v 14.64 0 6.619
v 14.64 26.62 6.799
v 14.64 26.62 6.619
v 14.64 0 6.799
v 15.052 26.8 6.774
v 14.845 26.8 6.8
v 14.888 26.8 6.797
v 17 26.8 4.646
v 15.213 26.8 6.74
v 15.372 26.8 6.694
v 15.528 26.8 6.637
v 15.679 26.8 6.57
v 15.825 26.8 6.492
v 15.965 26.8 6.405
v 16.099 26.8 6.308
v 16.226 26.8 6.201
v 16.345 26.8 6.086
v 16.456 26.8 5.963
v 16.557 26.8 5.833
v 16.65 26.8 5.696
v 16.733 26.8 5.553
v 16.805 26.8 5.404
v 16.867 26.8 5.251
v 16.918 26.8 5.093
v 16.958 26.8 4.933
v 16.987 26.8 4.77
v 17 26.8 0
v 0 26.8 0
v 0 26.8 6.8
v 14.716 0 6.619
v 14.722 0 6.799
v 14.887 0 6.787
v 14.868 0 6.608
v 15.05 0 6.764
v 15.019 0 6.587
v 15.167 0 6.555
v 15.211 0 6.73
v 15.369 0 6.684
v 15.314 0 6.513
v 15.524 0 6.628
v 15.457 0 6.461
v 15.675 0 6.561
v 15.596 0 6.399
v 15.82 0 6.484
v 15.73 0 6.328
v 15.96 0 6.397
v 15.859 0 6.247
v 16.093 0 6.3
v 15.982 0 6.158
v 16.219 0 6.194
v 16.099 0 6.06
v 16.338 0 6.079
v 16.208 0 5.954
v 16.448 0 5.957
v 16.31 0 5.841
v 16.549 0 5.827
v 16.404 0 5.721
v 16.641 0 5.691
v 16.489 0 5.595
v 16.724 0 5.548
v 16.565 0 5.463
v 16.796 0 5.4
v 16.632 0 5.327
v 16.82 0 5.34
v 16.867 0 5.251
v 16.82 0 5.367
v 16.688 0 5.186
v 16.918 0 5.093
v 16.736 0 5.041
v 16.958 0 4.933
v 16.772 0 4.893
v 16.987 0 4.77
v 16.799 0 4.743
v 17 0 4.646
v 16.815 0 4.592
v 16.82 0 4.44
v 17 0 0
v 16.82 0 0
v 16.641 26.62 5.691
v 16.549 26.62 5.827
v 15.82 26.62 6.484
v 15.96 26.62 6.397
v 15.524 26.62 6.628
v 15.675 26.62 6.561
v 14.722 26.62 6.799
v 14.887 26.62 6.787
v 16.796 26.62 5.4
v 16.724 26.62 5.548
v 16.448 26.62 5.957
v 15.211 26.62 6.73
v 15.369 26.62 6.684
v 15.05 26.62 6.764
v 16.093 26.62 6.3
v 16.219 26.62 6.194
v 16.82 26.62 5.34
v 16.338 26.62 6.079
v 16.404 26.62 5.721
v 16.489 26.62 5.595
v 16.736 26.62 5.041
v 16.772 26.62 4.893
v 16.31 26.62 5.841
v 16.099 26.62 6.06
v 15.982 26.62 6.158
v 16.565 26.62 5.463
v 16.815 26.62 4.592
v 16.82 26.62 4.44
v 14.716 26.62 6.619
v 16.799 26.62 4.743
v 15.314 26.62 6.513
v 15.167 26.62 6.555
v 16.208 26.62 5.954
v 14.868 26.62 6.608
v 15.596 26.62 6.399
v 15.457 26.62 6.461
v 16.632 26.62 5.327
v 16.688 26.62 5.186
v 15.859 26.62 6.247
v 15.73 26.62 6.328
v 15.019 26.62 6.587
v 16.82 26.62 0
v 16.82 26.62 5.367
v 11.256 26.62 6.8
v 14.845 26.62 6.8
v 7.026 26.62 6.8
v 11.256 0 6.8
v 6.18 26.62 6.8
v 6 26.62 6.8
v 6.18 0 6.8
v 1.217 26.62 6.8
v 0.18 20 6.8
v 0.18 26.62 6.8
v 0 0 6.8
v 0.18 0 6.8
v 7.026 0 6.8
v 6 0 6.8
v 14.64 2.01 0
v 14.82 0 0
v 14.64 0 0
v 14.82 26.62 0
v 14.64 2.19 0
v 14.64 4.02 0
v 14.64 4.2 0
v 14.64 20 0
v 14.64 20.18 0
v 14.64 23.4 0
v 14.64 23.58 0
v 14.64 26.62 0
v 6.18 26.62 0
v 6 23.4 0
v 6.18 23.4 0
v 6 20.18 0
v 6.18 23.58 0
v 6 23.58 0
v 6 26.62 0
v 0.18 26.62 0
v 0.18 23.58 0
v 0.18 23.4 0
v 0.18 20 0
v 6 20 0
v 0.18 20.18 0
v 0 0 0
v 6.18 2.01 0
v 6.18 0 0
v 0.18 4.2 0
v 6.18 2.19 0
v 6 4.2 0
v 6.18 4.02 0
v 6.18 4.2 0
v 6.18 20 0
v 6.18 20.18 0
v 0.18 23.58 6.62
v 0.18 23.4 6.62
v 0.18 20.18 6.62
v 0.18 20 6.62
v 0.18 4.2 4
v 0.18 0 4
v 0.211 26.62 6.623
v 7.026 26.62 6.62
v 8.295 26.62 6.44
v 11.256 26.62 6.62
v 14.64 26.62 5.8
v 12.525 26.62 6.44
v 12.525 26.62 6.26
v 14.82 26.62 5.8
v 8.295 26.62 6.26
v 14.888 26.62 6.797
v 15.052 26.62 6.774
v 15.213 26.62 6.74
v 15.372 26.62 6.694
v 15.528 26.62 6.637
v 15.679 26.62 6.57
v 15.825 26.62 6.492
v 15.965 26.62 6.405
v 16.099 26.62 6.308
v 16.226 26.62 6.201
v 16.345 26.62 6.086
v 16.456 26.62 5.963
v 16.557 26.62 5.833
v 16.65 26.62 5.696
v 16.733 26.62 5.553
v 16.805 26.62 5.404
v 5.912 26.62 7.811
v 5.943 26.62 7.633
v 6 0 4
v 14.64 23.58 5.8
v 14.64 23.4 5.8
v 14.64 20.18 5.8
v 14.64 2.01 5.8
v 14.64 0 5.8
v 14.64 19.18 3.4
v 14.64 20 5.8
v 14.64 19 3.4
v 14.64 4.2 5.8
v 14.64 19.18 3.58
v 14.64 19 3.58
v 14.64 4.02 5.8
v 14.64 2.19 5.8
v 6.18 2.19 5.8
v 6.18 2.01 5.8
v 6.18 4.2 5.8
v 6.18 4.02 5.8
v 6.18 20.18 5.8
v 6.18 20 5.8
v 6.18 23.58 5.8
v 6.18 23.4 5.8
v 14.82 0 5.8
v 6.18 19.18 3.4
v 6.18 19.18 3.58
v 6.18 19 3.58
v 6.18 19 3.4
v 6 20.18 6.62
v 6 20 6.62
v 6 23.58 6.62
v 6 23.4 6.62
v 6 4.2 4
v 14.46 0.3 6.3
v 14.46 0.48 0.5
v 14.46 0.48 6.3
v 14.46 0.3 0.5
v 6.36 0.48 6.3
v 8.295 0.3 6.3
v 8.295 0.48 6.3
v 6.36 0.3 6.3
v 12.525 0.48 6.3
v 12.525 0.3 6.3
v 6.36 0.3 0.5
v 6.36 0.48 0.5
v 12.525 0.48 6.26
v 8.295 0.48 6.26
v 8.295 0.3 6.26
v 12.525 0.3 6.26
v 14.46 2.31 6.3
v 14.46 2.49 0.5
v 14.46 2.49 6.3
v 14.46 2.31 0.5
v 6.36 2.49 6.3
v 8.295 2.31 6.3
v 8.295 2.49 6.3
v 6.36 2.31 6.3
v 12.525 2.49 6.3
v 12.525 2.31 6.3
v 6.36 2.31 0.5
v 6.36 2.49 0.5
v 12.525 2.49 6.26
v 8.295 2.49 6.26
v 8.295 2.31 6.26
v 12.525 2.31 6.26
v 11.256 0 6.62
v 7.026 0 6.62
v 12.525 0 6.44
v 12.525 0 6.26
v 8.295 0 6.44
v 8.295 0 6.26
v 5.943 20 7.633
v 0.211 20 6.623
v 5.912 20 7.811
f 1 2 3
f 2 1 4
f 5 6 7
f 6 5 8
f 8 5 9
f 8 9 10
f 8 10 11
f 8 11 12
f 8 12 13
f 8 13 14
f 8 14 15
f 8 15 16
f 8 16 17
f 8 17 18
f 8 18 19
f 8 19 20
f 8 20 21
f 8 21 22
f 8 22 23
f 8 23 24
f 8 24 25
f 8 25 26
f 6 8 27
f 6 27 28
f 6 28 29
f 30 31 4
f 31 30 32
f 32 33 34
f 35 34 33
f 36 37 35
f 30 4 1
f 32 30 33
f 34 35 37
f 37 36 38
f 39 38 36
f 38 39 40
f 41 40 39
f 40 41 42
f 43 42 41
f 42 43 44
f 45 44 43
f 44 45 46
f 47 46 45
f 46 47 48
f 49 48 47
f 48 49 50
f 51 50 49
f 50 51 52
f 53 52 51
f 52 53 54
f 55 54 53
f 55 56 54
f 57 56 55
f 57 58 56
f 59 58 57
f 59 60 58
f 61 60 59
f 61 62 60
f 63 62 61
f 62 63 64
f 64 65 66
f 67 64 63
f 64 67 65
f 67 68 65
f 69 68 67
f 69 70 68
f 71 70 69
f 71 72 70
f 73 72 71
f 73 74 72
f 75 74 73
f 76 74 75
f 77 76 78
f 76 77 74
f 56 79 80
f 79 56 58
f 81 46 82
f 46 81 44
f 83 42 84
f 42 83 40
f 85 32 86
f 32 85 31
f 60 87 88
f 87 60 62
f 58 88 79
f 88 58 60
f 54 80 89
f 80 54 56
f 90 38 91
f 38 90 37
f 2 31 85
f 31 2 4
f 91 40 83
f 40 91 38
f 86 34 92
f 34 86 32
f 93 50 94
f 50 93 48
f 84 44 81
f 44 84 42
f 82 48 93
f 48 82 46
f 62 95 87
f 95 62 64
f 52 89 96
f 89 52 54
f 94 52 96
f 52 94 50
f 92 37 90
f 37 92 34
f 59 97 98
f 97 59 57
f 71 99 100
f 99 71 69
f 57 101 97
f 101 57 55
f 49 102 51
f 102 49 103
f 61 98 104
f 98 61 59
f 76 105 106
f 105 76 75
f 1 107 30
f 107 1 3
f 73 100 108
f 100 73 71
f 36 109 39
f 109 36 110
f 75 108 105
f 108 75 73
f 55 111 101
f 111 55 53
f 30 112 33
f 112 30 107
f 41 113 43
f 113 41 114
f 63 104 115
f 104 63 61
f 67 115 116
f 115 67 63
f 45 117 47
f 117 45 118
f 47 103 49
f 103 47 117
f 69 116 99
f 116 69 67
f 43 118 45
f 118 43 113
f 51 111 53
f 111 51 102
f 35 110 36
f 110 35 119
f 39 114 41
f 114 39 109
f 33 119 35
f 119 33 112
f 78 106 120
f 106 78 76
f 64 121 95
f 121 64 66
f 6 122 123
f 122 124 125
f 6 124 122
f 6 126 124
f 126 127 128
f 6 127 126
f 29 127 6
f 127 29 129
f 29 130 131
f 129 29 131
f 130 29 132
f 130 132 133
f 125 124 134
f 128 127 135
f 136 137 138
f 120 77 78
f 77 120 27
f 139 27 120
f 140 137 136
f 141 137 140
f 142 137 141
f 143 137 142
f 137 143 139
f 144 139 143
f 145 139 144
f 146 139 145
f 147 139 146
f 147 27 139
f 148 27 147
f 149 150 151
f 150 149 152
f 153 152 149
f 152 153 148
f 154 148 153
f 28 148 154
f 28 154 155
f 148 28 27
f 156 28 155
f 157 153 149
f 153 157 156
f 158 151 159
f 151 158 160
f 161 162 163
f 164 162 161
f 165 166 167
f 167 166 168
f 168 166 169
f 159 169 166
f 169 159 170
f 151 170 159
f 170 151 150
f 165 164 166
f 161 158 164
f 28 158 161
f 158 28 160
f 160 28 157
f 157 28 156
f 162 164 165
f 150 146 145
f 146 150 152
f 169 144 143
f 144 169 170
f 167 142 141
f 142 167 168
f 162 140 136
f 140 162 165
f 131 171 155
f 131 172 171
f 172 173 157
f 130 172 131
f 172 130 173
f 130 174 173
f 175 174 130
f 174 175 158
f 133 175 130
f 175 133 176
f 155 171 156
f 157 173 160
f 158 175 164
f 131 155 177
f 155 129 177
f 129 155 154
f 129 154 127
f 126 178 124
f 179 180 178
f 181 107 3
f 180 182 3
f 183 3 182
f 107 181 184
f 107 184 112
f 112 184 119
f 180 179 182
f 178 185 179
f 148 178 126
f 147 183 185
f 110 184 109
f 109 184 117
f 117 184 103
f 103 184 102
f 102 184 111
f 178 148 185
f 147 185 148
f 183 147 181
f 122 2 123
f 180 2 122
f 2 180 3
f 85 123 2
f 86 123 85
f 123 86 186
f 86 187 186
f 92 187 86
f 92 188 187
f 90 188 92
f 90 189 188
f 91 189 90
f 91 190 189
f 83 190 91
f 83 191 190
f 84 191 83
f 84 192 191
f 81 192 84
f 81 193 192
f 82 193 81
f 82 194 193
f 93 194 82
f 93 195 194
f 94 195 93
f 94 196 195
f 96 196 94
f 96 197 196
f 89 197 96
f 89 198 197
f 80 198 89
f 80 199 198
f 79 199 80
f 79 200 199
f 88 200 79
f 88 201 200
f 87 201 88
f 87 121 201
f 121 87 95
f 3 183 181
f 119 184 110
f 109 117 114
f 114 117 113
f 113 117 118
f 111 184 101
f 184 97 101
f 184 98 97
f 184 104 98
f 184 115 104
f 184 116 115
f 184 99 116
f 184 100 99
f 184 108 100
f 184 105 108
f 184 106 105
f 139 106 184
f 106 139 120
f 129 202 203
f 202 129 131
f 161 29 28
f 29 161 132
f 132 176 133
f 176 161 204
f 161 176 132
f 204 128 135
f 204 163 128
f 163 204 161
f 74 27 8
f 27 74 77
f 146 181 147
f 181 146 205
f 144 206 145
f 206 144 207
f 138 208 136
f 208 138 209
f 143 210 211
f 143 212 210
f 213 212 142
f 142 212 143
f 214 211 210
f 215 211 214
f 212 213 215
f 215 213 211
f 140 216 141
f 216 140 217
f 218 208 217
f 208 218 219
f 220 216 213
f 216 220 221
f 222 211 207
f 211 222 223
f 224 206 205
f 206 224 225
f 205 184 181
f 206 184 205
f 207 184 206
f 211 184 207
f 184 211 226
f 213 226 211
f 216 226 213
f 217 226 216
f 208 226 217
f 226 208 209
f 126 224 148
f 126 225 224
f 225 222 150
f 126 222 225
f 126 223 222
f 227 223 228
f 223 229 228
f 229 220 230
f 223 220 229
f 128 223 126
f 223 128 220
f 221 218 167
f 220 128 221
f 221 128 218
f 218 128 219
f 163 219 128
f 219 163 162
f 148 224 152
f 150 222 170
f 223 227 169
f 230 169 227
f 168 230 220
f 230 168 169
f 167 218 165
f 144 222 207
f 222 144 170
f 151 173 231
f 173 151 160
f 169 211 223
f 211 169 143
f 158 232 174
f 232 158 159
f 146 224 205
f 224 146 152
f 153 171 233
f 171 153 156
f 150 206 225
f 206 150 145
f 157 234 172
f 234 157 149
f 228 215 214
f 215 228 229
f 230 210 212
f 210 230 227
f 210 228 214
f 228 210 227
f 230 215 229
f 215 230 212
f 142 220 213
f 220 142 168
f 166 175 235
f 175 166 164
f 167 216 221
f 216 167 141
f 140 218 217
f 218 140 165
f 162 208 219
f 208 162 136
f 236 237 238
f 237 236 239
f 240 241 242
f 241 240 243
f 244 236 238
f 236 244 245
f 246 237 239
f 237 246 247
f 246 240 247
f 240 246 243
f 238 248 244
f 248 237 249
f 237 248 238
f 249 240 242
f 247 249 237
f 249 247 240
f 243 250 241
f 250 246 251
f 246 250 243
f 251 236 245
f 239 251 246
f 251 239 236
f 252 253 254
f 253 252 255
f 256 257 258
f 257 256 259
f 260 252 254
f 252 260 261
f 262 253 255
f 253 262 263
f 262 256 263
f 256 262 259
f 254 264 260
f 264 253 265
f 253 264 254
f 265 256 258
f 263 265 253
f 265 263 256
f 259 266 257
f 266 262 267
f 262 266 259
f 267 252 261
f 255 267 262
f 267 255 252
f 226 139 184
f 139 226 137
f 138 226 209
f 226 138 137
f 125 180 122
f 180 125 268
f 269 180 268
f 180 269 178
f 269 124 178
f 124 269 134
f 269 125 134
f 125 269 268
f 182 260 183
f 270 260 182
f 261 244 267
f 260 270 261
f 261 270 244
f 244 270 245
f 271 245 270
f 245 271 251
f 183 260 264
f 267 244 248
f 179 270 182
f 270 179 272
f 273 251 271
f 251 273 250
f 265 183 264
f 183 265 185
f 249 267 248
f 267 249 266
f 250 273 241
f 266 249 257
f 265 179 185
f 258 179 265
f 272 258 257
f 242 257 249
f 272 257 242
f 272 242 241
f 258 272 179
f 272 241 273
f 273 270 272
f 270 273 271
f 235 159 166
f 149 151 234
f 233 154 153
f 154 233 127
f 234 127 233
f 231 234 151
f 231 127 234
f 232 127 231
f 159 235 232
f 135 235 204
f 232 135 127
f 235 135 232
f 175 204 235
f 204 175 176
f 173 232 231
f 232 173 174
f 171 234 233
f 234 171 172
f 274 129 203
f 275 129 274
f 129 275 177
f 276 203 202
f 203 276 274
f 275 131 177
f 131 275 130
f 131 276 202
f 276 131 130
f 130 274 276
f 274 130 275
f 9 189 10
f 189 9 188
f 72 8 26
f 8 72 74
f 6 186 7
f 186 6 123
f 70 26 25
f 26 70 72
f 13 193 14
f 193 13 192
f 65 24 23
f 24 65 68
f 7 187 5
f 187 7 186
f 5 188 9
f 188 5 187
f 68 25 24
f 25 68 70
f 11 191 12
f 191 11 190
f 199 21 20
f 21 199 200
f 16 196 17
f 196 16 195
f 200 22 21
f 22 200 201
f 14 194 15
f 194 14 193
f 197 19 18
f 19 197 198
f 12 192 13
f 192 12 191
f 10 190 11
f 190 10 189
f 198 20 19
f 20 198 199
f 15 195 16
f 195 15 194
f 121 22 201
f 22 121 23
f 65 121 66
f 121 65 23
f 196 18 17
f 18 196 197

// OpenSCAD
$fn = 90;
module hall_cabinet() {
    PLANK_THICKNESS = 0.18;
    CLOSET_HEIGHT = 26.8;
    CLOSED_DEPTH = 6.8;
    VENT_DEPTH = 8.;
    KITCHEN_WALL_LENGTH = 9.;
    CLOSET_WIDTH = VENT_DEPTH + KITCHEN_WALL_LENGTH;
    BROOM_COMPARTMENT_WIDTH = 2.;
    SEAT_WIDTH = 6.; // our has 10.
    SEAT_DEPTH = 4.;
    SEAT_TOP = 4.2;
    SEAT_END = SEAT_WIDTH + PLANK_THICKNESS;
    SLIDING_DOORS_DEPTH = 1.;
    MIDDLE_PLANK_DEPTH = CLOSED_DEPTH - SLIDING_DOORS_DEPTH;
    MIDDLE_VERTICAL_PLANK_HEIGHT = CLOSET_HEIGHT - PLANK_THICKNESS;
    MIDDLE_HORIZONTAL_PLANK_Y = 20.0;
    TOP_HORIZONTAL_DIVIDER_PLANK_Y = MIDDLE_HORIZONTAL_PLANK_Y + 0.5 * (CLOSET_HEIGHT - MIDDLE_HORIZONTAL_PLANK_Y);
    HANGER_ROD_Y = 19.0;
    SHOES_DRAWER_TOP_Y = SEAT_TOP - PLANK_THICKNESS;
    SHOES_DRAWER_MIDDLE_Y = 0.5 * SHOES_DRAWER_TOP_Y;
    HANGER_SPACE_W = CLOSET_WIDTH - 3. * PLANK_THICKNESS - BROOM_COMPARTMENT_WIDTH - SEAT_WIDTH;
    BROOM_X = CLOSET_WIDTH - 2. * PLANK_THICKNESS - BROOM_COMPARTMENT_WIDTH;
    MAX_DRAWER_Y = 11.;
    eps = 0.01;
    rounding_radius = BROOM_COMPARTMENT_WIDTH + 2 * PLANK_THICKNESS;
    SHOES_DROWER_DEPTH_DISPLACEMENT = 0.5;

    difference() {
        union() {
            // BOX
            // top plank
            translate([PLANK_THICKNESS, MIDDLE_VERTICAL_PLANK_HEIGHT, 0.]) {
                cube([CLOSET_WIDTH - 2. * PLANK_THICKNESS, PLANK_THICKNESS, CLOSED_DEPTH]);
            }
            // left side plank
            translate([0., 0., 0.]) {
                cube([PLANK_THICKNESS, CLOSET_HEIGHT, CLOSED_DEPTH]);
            }
            // right side plank
            translate([CLOSET_WIDTH - PLANK_THICKNESS, 0., 0.]) {
                cube([PLANK_THICKNESS, CLOSET_HEIGHT, CLOSED_DEPTH]);
            }
            // HANGER SPACE
            // over the rod hanger plank
            translate([SEAT_END, MIDDLE_HORIZONTAL_PLANK_Y, 0.]) {
                cube([HANGER_SPACE_W, PLANK_THICKNESS, MIDDLE_PLANK_DEPTH]);
            }
            // top storage divider horizontal hanger plank
            translate([SEAT_END, TOP_HORIZONTAL_DIVIDER_PLANK_Y, 0.]) {
                cube([HANGER_SPACE_W, PLANK_THICKNESS, MIDDLE_PLANK_DEPTH]);
            }
            // the rod
            translate([SEAT_END, HANGER_ROD_Y, 0.5 * CLOSED_DEPTH]) {
                cube([HANGER_SPACE_W, PLANK_THICKNESS, PLANK_THICKNESS]);
            }
            // over the boot draweds under the couat space
            translate([SEAT_END, SHOES_DRAWER_TOP_Y, 0.]) {
                cube([HANGER_SPACE_W, PLANK_THICKNESS, MIDDLE_PLANK_DEPTH]);
            }
            // split the boots with horizontal plank
            translate([SEAT_END, SHOES_DRAWER_MIDDLE_Y, 0.]) {
                cube([HANGER_SPACE_W, PLANK_THICKNESS, MIDDLE_PLANK_DEPTH]);
            }
            // shoes drawer bottom
            translate([SEAT_END + PLANK_THICKNESS, 0.3, SHOES_DROWER_DEPTH_DISPLACEMENT]) {
                cube([HANGER_SPACE_W - 2 * PLANK_THICKNESS, PLANK_THICKNESS, MIDDLE_PLANK_DEPTH]);
            }
            // shoes drawer top
            translate([SEAT_END + PLANK_THICKNESS, SHOES_DRAWER_MIDDLE_Y + 0.3, SHOES_DROWER_DEPTH_DISPLACEMENT]) {
                cube([HANGER_SPACE_W - 2 * PLANK_THICKNESS, PLANK_THICKNESS, MIDDLE_PLANK_DEPTH]);
            }
            // broom compartment and hanger space divider
            translate([BROOM_X, 0., 0.]) {
                cube([PLANK_THICKNESS, CLOSET_HEIGHT, MIDDLE_PLANK_DEPTH]);
            }
            // HANGER SPACE SLIDING DOORS
            translate([SEAT_END + 0.1 * HANGER_SPACE_W, 0., CLOSED_DEPTH - PLANK_THICKNESS]) {
                cube([0.5 * HANGER_SPACE_W, CLOSET_HEIGHT, PLANK_THICKNESS]);
            }
            translate([SEAT_END + 0.25 * HANGER_SPACE_W, 0., CLOSED_DEPTH - 3 * PLANK_THICKNESS]) {
                cube([0.5 * HANGER_SPACE_W, CLOSET_HEIGHT, PLANK_THICKNESS]);
            }
            // SEAT
            // seat and hanging space divider
            translate([SEAT_END - PLANK_THICKNESS, 0., 0.]) {
                cube([PLANK_THICKNESS, MIDDLE_VERTICAL_PLANK_HEIGHT, CLOSED_DEPTH]);
            }
            // the seat
            translate([PLANK_THICKNESS, 0., 0.]) {
                cube([SEAT_WIDTH, SEAT_TOP, SEAT_DEPTH]);
            }
            seat_shelf_depth = CLOSED_DEPTH - PLANK_THICKNESS;
            // over the rod seat plank
            translate([PLANK_THICKNESS, MIDDLE_HORIZONTAL_PLANK_Y, 0.]) {
                cube([SEAT_WIDTH, PLANK_THICKNESS, seat_shelf_depth]);
            }
            // top storage divider horizontal seat plank
            translate([PLANK_THICKNESS, TOP_HORIZONTAL_DIVIDER_PLANK_Y, 0.]) {
                cube([SEAT_WIDTH, PLANK_THICKNESS, seat_shelf_depth]);
            }
            // top over seat storage doors
            translate([PLANK_THICKNESS, MIDDLE_HORIZONTAL_PLANK_Y, seat_shelf_depth + PLANK_THICKNESS]) {
                rotate([0, 80, 0]) {
                    cube([PLANK_THICKNESS, CLOSET_HEIGHT - MIDDLE_HORIZONTAL_PLANK_Y - PLANK_THICKNESS, SEAT_WIDTH - PLANK_THICKNESS]);
                }
            }
            // rounded door for broom compartment
            translate([CLOSET_WIDTH - rounding_radius, 0., CLOSED_DEPTH - rounding_radius]) {
                difference() {
                    intersection() {
                        cube([rounding_radius, CLOSET_HEIGHT, rounding_radius]);
                        rotate([-90, 0, 0]) {
                            cylinder(CLOSET_HEIGHT + 2 * eps, rounding_radius, rounding_radius);
                        }
                    }
                    translate([0., -2 * eps, 0.]) {
                        rotate([-90, 0, 0]) {
                            cylinder(CLOSET_HEIGHT + eps, rounding_radius - PLANK_THICKNESS, rounding_radius - PLANK_THICKNESS);
                        }
                    }
                }
            }
        }
        translate([CLOSET_WIDTH - rounding_radius, -0.5 * eps, CLOSED_DEPTH - rounding_radius]) {
            difference() {
                cube([rounding_radius + eps, CLOSET_HEIGHT + eps, rounding_radius + eps]);
                rotate([-90, 0, 0]) {
                    cylinder(CLOSET_HEIGHT + eps, rounding_radius + eps, rounding_radius + eps);
                }
            }
        }
    }
}

hall_cabinet();
